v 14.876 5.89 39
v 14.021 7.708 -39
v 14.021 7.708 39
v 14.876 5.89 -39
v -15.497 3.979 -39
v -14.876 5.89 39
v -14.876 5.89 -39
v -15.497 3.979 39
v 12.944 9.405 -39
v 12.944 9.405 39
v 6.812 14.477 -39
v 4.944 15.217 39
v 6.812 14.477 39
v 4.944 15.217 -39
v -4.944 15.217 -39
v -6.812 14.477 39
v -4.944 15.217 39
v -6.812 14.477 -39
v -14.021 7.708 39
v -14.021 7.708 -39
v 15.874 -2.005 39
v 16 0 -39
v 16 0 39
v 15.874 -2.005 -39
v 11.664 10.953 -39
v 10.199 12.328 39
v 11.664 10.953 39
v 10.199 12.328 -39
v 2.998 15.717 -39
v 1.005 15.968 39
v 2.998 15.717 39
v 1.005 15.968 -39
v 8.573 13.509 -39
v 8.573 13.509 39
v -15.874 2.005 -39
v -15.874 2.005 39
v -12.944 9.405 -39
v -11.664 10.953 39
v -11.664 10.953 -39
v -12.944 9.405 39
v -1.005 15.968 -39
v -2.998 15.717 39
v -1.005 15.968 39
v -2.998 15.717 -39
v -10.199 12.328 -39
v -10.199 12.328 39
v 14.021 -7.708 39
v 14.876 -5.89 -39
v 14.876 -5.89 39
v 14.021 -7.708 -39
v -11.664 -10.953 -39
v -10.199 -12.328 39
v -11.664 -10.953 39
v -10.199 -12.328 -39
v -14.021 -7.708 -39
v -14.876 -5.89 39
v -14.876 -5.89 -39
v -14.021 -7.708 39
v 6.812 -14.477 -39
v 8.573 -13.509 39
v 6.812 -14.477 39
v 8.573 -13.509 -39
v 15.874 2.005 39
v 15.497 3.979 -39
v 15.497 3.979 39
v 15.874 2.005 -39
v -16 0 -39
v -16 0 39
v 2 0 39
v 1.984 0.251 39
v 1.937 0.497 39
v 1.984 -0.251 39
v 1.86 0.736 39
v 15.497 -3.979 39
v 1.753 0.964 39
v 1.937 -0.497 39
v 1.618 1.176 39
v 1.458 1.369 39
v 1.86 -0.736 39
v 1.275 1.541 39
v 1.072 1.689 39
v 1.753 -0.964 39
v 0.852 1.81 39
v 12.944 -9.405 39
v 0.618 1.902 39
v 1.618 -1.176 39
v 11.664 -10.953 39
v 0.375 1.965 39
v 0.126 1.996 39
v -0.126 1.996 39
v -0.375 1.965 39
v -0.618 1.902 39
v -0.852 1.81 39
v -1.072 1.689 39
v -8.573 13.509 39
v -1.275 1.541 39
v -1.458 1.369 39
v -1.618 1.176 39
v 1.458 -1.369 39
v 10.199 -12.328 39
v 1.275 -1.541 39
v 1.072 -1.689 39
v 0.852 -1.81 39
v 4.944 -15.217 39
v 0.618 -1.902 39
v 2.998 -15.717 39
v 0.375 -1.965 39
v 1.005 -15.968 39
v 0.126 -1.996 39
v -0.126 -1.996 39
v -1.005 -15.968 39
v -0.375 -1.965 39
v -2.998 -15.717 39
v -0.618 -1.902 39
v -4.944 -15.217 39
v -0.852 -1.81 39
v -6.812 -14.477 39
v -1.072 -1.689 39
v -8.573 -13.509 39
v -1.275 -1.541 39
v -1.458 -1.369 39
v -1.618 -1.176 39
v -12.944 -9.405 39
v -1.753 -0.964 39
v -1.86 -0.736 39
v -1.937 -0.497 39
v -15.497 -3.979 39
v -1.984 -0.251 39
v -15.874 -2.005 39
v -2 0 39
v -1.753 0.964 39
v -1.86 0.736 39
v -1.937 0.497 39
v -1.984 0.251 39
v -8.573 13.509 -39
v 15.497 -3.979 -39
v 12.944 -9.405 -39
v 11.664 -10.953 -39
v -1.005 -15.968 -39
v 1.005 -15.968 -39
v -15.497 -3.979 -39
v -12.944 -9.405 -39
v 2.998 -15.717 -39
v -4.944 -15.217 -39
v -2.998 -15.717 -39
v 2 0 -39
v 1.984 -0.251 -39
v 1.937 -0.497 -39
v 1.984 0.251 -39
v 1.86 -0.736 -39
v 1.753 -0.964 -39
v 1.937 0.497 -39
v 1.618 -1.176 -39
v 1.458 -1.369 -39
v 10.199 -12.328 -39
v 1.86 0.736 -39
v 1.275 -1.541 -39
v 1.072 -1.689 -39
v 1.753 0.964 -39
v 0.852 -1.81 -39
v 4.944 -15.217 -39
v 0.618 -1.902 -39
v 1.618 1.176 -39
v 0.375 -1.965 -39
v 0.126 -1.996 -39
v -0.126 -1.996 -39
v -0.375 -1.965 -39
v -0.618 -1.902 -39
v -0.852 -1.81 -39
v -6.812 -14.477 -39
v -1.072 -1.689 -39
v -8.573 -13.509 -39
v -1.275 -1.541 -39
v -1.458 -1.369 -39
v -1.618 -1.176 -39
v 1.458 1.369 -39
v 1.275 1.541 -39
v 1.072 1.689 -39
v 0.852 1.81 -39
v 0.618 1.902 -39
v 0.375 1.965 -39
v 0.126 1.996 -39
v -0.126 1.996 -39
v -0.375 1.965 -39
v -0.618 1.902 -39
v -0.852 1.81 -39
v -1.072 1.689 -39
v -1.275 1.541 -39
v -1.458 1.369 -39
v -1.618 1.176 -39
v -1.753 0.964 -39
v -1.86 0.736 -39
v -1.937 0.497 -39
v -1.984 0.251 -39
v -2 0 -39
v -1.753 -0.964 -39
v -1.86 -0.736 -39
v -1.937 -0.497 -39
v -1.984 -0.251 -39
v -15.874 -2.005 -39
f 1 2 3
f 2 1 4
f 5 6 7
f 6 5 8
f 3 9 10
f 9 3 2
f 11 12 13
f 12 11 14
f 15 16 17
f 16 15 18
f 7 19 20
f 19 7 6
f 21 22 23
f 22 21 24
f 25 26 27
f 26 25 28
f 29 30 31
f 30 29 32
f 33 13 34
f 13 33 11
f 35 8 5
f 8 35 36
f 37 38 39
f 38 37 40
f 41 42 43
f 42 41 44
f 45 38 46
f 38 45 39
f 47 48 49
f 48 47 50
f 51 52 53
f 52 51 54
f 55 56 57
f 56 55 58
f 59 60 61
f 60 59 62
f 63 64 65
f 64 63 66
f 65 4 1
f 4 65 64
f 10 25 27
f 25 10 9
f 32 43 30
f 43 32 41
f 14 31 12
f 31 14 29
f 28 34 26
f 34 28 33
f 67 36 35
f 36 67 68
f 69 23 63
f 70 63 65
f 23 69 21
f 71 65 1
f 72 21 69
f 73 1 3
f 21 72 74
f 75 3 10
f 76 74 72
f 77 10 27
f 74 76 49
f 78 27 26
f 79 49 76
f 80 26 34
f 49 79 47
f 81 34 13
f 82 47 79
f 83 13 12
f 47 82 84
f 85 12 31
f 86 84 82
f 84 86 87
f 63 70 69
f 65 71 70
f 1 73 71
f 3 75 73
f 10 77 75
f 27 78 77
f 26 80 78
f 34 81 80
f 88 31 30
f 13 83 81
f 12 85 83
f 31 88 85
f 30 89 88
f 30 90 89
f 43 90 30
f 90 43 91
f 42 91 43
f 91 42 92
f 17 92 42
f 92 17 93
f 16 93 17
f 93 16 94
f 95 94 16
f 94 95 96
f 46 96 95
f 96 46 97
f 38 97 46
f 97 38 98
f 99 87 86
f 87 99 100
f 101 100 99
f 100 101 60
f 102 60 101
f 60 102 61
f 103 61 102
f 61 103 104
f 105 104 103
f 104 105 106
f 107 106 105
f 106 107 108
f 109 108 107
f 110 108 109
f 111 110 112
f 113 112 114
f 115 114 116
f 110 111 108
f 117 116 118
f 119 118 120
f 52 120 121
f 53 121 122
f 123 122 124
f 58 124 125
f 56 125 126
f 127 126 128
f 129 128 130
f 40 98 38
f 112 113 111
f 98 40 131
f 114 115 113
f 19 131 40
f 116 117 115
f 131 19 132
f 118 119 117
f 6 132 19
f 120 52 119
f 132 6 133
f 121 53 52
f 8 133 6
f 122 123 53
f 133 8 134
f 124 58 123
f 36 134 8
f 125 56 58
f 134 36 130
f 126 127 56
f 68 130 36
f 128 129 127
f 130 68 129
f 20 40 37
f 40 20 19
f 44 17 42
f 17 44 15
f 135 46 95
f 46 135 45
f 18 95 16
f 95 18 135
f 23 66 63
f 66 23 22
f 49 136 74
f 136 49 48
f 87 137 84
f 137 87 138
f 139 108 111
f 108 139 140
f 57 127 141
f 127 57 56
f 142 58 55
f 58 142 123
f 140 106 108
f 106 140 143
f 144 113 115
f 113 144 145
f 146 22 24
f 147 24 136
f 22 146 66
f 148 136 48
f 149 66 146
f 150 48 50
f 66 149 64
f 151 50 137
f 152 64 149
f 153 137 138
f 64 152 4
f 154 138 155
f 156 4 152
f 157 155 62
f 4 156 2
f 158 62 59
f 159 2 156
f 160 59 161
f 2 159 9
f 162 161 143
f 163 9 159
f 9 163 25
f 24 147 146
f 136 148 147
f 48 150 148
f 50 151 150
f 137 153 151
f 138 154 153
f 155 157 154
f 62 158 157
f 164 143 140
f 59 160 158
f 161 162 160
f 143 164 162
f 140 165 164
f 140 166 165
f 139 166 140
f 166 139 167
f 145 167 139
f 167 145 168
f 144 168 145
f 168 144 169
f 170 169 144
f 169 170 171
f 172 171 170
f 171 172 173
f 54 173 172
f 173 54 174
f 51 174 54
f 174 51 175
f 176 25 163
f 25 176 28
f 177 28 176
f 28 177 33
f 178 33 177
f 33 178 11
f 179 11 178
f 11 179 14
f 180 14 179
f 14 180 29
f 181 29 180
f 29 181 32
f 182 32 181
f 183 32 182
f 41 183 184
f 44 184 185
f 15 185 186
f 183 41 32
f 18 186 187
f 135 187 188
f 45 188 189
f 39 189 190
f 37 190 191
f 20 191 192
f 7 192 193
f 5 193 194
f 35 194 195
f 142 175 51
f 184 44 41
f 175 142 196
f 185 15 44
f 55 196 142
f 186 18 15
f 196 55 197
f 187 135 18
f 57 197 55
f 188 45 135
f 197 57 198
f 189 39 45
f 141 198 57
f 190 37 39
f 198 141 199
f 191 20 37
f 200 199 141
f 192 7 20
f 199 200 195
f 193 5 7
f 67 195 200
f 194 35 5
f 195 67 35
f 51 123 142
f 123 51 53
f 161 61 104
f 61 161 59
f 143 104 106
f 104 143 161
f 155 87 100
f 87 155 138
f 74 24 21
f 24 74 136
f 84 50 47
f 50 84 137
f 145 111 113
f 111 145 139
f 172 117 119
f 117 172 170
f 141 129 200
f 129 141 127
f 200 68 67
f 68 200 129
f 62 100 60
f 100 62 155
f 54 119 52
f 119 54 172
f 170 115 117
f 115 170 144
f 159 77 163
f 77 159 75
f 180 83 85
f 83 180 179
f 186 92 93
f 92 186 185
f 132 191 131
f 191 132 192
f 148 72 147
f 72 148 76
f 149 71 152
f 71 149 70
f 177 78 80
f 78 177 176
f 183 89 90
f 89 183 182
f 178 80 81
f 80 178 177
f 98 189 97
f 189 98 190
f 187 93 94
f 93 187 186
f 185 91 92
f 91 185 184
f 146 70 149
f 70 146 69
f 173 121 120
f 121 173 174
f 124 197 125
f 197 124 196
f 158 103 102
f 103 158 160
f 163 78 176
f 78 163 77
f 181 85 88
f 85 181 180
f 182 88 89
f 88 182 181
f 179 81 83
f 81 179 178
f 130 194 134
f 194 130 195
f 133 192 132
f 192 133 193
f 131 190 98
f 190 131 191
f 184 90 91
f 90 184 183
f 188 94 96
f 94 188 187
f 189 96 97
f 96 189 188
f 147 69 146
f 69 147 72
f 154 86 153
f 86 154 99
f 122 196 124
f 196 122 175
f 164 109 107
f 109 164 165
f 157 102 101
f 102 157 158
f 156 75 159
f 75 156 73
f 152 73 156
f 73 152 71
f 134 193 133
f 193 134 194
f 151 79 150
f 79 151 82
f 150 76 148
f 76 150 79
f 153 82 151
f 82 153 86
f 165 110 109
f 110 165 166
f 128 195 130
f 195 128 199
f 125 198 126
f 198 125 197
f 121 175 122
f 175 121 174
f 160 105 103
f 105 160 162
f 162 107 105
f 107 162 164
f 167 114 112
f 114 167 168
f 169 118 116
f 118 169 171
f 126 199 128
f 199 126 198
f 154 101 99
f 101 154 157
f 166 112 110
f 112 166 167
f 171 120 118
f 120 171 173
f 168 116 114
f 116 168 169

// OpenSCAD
$fn = 50;


difference() {
	union() {
		translate(v = [0, 0, -39.0000000000]) {
			cylinder(h = 78, r = 16.0000000000);
		}
	}
	union() {
		translate(v = [0, 0, -100.0000000000]) {
			cylinder(h = 200, r = 2);
		}
	}
}
